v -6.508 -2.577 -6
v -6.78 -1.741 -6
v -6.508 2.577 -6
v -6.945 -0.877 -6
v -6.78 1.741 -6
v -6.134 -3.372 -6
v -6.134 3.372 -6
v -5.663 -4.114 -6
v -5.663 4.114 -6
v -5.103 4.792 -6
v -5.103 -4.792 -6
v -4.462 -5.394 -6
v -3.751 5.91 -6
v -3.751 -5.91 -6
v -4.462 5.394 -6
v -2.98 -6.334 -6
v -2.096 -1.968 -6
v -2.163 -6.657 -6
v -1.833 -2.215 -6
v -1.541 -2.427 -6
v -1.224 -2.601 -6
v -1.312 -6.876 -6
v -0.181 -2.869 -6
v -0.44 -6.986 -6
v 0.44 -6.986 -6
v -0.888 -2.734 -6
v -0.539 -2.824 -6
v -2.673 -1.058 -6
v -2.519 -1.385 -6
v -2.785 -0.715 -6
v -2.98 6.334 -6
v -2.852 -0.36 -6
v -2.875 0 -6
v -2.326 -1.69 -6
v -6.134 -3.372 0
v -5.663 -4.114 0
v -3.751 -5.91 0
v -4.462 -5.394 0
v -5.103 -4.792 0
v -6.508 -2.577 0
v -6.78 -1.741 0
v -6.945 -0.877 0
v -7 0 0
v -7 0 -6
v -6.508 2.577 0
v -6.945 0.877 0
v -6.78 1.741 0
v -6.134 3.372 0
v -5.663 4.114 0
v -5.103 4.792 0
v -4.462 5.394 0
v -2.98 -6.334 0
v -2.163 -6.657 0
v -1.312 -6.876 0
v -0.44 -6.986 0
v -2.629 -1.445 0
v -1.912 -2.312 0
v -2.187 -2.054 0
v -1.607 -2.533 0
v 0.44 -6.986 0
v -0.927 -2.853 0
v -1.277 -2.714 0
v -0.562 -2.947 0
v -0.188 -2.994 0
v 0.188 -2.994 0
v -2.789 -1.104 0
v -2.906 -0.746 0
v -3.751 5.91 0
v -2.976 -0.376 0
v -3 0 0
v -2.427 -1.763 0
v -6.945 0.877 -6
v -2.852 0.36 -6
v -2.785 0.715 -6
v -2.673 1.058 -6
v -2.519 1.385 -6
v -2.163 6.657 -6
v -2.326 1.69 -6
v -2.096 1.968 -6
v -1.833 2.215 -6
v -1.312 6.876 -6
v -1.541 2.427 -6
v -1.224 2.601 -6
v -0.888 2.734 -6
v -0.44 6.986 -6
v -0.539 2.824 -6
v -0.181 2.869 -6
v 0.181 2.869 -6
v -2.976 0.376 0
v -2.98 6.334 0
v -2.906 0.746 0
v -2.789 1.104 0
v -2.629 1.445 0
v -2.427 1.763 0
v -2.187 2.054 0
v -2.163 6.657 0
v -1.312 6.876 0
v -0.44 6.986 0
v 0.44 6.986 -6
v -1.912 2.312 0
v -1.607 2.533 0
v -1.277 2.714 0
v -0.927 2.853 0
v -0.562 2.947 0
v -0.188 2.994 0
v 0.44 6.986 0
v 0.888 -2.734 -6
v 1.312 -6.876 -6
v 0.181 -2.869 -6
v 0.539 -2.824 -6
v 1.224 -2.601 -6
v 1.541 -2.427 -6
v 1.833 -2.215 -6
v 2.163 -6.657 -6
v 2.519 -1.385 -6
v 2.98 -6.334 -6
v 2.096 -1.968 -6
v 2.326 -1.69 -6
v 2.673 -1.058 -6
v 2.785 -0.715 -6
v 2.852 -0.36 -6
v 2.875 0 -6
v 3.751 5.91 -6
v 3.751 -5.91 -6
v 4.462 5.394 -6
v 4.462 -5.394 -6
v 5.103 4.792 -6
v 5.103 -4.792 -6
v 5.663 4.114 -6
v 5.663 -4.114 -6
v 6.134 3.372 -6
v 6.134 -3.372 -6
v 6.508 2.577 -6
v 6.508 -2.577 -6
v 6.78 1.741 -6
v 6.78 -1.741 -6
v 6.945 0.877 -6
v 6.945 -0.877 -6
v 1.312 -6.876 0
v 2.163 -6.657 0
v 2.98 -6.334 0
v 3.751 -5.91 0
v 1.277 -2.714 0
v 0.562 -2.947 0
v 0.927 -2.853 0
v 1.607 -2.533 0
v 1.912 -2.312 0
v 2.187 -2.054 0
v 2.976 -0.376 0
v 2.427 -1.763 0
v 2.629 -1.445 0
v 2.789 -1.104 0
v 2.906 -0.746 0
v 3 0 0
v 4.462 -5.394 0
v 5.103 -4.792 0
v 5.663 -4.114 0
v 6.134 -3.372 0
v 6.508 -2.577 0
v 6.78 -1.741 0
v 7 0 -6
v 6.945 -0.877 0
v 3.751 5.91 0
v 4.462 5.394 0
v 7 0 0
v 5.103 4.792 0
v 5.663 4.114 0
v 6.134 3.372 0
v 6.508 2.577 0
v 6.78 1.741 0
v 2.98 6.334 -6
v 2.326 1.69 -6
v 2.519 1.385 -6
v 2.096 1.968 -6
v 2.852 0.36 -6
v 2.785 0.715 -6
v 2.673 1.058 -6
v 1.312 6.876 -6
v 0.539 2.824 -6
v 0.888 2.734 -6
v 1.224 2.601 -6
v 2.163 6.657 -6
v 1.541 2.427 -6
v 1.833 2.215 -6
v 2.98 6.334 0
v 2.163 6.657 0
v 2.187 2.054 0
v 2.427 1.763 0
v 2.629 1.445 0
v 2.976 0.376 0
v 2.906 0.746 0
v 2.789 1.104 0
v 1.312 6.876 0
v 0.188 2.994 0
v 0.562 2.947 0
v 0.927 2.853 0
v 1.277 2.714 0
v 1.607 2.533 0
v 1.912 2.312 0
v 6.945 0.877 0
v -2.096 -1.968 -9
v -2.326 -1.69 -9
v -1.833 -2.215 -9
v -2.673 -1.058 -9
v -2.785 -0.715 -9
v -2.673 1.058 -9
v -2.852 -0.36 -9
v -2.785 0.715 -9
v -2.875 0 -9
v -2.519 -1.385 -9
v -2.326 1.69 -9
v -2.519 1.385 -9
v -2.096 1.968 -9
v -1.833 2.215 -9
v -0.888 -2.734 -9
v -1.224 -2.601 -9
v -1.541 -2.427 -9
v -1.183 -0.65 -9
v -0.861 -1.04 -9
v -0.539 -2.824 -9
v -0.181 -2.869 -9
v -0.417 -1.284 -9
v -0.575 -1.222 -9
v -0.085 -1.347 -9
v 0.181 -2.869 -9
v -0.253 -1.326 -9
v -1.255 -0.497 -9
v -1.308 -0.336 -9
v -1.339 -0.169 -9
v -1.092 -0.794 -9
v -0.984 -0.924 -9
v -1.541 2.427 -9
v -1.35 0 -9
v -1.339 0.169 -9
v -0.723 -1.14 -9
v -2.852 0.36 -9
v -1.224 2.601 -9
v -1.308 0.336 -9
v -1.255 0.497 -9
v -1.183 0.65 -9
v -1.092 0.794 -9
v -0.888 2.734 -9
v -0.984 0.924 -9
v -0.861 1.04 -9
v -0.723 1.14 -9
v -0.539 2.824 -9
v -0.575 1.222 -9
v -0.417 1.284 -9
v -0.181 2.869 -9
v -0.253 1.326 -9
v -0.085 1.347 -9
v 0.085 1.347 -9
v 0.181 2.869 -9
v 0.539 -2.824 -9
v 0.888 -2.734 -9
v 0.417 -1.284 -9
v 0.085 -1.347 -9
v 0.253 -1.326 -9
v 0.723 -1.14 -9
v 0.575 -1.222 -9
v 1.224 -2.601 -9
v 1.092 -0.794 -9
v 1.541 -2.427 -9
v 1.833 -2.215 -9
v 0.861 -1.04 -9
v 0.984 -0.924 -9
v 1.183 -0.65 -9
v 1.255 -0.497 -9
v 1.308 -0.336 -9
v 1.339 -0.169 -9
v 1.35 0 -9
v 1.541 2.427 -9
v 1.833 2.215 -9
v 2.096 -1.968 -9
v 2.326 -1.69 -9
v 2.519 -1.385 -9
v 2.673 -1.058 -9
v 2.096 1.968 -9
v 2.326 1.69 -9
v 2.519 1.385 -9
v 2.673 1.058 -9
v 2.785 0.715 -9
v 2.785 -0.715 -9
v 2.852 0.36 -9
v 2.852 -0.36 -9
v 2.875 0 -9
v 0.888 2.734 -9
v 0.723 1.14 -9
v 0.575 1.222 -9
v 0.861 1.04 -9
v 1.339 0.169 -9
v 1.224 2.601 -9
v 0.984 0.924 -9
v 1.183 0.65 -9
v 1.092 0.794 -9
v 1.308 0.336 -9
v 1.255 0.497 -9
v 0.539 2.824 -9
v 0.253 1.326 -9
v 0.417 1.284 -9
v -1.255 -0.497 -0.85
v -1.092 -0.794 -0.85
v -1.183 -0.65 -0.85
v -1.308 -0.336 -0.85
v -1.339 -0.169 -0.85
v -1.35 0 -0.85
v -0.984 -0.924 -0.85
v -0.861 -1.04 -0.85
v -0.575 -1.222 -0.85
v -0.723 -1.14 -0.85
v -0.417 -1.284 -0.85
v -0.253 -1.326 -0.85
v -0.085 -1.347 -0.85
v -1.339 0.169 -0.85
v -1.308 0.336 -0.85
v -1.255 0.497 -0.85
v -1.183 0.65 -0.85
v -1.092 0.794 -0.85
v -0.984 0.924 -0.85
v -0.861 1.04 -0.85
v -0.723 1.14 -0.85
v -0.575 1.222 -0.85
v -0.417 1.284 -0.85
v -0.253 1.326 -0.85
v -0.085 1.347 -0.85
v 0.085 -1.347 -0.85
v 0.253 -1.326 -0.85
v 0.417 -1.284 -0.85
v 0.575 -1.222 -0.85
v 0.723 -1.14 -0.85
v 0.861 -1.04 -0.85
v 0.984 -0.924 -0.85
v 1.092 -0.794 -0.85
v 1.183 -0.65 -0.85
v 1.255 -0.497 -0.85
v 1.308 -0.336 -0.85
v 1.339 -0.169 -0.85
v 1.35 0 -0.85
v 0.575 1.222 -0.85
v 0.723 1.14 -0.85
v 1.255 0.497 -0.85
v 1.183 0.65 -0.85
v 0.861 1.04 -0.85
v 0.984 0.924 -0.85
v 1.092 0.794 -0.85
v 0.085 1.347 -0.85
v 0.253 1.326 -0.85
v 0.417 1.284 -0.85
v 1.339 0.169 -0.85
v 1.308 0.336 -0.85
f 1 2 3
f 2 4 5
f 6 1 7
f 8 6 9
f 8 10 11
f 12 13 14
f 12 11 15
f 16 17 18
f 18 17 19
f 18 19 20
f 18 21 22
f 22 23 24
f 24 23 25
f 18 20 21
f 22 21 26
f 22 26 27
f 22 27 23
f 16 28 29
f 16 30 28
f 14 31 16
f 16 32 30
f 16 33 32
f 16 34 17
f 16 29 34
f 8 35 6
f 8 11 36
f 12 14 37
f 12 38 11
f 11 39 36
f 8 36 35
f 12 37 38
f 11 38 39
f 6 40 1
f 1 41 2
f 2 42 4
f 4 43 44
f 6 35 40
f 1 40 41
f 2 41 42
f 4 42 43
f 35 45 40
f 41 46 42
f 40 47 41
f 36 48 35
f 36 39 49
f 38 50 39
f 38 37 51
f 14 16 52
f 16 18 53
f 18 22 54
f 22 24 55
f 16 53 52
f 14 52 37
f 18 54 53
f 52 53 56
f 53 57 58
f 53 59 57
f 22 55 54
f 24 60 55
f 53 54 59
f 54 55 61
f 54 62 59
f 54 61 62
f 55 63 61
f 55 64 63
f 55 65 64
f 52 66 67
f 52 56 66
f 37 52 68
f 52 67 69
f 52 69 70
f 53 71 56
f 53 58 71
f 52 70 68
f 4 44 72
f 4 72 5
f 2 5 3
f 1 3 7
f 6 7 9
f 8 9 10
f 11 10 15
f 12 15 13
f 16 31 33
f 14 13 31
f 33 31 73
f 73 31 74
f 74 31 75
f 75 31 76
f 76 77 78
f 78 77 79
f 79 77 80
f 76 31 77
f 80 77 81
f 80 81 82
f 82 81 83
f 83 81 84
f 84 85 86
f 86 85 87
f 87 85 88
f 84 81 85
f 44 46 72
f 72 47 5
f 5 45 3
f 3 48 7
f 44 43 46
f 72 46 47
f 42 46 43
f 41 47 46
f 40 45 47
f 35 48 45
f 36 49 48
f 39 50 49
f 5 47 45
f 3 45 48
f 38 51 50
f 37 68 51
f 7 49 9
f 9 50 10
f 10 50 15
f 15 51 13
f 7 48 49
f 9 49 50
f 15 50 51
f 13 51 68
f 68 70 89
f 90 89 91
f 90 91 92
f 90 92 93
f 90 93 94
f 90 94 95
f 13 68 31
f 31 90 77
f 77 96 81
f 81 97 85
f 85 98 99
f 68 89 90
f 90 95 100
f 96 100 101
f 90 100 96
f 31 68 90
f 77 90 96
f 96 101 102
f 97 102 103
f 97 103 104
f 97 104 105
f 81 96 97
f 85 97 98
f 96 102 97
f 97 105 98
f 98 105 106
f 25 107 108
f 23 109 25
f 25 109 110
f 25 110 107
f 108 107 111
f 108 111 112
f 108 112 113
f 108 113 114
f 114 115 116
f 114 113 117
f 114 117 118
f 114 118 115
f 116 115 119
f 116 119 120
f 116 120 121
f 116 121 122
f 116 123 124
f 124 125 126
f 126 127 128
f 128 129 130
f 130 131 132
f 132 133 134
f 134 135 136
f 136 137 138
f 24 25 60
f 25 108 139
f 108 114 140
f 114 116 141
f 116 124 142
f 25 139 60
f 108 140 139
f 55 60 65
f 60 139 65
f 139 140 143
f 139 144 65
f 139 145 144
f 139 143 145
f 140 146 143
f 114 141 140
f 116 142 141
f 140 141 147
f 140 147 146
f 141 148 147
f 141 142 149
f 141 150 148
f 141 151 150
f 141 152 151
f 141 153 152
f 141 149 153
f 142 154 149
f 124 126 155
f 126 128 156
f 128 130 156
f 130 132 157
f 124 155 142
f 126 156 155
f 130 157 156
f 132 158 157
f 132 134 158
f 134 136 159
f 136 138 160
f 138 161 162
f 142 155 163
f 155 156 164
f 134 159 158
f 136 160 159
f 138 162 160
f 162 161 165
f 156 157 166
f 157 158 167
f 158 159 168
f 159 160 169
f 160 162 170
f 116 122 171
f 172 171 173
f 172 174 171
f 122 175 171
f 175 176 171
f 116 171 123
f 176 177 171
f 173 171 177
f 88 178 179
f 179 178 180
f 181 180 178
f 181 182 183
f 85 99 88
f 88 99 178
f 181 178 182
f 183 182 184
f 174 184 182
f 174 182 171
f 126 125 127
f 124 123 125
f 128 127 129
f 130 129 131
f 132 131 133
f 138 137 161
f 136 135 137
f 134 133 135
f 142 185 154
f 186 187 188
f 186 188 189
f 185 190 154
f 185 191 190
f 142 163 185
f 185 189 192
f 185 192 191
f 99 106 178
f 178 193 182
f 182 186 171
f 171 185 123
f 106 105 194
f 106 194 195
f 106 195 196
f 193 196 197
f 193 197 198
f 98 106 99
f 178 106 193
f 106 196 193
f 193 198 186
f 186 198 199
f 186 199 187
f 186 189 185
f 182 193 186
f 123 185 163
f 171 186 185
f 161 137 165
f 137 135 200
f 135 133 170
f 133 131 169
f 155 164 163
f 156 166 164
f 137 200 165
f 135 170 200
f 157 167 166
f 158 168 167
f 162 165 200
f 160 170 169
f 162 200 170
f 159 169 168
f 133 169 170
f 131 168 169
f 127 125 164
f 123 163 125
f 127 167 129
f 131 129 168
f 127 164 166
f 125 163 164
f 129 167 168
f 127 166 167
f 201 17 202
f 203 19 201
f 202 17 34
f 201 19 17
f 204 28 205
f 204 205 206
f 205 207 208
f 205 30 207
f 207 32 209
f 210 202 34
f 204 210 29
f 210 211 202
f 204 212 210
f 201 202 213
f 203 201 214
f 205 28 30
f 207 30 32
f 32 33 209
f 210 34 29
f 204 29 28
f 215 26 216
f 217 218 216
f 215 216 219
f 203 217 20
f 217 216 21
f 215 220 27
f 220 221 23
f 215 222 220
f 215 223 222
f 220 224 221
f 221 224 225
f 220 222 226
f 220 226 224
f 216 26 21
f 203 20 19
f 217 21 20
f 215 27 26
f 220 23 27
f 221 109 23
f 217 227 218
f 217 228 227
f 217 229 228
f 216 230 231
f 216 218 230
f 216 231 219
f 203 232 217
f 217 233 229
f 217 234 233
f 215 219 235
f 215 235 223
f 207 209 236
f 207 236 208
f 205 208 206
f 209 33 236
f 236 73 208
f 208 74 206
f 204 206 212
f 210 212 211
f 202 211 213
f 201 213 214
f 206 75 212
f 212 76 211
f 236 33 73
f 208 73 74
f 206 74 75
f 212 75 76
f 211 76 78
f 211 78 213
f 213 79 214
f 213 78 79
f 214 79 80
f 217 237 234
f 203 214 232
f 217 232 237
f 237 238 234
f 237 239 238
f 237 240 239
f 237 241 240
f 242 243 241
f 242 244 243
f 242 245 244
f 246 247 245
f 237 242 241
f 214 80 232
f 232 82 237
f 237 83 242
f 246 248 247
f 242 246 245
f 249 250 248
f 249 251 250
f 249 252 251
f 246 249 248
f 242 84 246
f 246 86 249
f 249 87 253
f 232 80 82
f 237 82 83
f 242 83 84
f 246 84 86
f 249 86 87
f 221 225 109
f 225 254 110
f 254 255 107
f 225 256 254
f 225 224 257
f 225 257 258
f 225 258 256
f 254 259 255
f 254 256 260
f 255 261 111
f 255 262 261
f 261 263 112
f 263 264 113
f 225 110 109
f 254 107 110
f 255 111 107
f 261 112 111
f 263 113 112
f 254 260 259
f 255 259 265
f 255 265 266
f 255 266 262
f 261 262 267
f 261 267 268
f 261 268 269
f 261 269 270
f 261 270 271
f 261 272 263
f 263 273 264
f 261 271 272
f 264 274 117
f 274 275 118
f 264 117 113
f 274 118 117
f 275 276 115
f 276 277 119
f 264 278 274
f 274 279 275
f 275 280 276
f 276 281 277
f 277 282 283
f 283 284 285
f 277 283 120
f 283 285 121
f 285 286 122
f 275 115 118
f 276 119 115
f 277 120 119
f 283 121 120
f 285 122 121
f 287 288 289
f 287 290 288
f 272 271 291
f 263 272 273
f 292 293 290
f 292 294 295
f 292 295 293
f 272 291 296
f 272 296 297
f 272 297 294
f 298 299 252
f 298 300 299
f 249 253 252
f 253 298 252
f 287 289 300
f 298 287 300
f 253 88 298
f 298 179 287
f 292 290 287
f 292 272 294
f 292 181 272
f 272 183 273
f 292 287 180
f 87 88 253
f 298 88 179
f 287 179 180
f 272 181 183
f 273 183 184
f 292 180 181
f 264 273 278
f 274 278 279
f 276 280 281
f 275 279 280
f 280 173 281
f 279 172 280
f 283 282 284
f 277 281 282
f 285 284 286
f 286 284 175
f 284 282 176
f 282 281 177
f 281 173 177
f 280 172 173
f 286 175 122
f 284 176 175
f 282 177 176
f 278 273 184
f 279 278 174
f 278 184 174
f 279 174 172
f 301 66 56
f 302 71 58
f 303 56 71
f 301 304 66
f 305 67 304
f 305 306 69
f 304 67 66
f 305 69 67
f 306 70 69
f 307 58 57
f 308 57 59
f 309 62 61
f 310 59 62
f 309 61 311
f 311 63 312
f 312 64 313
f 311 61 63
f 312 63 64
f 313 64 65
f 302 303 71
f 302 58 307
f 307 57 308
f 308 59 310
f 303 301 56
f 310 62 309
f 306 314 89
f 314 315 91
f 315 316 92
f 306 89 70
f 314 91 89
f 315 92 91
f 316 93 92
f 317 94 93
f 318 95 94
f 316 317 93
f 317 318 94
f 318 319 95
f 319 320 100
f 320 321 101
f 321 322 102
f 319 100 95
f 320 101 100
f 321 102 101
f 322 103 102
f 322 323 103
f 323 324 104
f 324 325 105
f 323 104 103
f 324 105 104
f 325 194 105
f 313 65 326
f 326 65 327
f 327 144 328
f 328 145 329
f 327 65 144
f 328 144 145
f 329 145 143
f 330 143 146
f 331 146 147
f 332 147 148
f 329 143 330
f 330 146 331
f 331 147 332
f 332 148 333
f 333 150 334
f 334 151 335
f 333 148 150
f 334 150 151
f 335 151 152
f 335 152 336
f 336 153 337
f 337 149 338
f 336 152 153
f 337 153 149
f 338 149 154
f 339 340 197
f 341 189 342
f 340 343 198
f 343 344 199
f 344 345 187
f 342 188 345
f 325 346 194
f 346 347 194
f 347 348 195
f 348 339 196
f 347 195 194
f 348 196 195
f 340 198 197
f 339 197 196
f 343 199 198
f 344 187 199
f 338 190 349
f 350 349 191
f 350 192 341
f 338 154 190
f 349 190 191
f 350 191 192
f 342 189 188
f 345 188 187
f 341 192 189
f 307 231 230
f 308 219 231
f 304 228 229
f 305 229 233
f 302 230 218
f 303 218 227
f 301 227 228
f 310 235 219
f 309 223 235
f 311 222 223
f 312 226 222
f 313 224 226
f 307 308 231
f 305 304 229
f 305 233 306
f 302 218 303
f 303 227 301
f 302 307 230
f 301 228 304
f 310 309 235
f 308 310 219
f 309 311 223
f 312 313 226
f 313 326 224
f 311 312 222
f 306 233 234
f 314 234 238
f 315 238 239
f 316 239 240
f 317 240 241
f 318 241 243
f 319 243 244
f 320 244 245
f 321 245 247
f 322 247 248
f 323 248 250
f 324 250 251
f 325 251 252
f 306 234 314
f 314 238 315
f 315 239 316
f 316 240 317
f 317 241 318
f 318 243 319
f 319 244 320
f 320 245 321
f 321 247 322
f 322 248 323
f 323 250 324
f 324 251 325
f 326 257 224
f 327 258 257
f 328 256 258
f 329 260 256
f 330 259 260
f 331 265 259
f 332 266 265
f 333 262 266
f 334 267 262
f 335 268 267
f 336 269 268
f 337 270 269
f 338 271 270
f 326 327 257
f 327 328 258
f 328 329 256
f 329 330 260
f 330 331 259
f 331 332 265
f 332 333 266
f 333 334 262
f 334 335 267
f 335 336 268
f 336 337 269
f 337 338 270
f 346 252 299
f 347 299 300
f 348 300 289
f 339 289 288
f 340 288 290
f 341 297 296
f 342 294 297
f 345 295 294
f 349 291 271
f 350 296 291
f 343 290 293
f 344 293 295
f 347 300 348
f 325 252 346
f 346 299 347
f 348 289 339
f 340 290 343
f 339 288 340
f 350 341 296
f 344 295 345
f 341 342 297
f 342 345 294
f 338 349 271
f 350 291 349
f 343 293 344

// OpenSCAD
$fn = 50;


difference() {
	union() {
		translate(v = [0, 0, -6.0000000000]) {
			cylinder(h = 6, r = 7.0000000000);
		}
		#translate(v = [0, 0, -9.0000000000]) {
			cylinder(h = 9, r = 2.8750000000);
		}
	}
	union() {
		translate(v = [0, 0, 0]) {
			rotate(a = [0, 0, 0]) {
				difference() {
					union() {
						translate(v = [0, 0, -9.0000000000]) {
							cylinder(h = 9, r = 1.0000000000);
						}
						translate(v = [0, 0, -0.8500000000]) {
							cylinder(h = 0.8500000000, r1 = 1.3500000000, r2 = 3.0000000000);
						}
						translate(v = [0, 0, -9.0000000000]) {
							cylinder(h = 9, r = 1.3500000000);
						}
						translate(v = [0, 0, -9.0000000000]) {
							cylinder(h = 9, r = 1.0000000000);
						}
					}
					union();
				}
			}
		}
	}
}
